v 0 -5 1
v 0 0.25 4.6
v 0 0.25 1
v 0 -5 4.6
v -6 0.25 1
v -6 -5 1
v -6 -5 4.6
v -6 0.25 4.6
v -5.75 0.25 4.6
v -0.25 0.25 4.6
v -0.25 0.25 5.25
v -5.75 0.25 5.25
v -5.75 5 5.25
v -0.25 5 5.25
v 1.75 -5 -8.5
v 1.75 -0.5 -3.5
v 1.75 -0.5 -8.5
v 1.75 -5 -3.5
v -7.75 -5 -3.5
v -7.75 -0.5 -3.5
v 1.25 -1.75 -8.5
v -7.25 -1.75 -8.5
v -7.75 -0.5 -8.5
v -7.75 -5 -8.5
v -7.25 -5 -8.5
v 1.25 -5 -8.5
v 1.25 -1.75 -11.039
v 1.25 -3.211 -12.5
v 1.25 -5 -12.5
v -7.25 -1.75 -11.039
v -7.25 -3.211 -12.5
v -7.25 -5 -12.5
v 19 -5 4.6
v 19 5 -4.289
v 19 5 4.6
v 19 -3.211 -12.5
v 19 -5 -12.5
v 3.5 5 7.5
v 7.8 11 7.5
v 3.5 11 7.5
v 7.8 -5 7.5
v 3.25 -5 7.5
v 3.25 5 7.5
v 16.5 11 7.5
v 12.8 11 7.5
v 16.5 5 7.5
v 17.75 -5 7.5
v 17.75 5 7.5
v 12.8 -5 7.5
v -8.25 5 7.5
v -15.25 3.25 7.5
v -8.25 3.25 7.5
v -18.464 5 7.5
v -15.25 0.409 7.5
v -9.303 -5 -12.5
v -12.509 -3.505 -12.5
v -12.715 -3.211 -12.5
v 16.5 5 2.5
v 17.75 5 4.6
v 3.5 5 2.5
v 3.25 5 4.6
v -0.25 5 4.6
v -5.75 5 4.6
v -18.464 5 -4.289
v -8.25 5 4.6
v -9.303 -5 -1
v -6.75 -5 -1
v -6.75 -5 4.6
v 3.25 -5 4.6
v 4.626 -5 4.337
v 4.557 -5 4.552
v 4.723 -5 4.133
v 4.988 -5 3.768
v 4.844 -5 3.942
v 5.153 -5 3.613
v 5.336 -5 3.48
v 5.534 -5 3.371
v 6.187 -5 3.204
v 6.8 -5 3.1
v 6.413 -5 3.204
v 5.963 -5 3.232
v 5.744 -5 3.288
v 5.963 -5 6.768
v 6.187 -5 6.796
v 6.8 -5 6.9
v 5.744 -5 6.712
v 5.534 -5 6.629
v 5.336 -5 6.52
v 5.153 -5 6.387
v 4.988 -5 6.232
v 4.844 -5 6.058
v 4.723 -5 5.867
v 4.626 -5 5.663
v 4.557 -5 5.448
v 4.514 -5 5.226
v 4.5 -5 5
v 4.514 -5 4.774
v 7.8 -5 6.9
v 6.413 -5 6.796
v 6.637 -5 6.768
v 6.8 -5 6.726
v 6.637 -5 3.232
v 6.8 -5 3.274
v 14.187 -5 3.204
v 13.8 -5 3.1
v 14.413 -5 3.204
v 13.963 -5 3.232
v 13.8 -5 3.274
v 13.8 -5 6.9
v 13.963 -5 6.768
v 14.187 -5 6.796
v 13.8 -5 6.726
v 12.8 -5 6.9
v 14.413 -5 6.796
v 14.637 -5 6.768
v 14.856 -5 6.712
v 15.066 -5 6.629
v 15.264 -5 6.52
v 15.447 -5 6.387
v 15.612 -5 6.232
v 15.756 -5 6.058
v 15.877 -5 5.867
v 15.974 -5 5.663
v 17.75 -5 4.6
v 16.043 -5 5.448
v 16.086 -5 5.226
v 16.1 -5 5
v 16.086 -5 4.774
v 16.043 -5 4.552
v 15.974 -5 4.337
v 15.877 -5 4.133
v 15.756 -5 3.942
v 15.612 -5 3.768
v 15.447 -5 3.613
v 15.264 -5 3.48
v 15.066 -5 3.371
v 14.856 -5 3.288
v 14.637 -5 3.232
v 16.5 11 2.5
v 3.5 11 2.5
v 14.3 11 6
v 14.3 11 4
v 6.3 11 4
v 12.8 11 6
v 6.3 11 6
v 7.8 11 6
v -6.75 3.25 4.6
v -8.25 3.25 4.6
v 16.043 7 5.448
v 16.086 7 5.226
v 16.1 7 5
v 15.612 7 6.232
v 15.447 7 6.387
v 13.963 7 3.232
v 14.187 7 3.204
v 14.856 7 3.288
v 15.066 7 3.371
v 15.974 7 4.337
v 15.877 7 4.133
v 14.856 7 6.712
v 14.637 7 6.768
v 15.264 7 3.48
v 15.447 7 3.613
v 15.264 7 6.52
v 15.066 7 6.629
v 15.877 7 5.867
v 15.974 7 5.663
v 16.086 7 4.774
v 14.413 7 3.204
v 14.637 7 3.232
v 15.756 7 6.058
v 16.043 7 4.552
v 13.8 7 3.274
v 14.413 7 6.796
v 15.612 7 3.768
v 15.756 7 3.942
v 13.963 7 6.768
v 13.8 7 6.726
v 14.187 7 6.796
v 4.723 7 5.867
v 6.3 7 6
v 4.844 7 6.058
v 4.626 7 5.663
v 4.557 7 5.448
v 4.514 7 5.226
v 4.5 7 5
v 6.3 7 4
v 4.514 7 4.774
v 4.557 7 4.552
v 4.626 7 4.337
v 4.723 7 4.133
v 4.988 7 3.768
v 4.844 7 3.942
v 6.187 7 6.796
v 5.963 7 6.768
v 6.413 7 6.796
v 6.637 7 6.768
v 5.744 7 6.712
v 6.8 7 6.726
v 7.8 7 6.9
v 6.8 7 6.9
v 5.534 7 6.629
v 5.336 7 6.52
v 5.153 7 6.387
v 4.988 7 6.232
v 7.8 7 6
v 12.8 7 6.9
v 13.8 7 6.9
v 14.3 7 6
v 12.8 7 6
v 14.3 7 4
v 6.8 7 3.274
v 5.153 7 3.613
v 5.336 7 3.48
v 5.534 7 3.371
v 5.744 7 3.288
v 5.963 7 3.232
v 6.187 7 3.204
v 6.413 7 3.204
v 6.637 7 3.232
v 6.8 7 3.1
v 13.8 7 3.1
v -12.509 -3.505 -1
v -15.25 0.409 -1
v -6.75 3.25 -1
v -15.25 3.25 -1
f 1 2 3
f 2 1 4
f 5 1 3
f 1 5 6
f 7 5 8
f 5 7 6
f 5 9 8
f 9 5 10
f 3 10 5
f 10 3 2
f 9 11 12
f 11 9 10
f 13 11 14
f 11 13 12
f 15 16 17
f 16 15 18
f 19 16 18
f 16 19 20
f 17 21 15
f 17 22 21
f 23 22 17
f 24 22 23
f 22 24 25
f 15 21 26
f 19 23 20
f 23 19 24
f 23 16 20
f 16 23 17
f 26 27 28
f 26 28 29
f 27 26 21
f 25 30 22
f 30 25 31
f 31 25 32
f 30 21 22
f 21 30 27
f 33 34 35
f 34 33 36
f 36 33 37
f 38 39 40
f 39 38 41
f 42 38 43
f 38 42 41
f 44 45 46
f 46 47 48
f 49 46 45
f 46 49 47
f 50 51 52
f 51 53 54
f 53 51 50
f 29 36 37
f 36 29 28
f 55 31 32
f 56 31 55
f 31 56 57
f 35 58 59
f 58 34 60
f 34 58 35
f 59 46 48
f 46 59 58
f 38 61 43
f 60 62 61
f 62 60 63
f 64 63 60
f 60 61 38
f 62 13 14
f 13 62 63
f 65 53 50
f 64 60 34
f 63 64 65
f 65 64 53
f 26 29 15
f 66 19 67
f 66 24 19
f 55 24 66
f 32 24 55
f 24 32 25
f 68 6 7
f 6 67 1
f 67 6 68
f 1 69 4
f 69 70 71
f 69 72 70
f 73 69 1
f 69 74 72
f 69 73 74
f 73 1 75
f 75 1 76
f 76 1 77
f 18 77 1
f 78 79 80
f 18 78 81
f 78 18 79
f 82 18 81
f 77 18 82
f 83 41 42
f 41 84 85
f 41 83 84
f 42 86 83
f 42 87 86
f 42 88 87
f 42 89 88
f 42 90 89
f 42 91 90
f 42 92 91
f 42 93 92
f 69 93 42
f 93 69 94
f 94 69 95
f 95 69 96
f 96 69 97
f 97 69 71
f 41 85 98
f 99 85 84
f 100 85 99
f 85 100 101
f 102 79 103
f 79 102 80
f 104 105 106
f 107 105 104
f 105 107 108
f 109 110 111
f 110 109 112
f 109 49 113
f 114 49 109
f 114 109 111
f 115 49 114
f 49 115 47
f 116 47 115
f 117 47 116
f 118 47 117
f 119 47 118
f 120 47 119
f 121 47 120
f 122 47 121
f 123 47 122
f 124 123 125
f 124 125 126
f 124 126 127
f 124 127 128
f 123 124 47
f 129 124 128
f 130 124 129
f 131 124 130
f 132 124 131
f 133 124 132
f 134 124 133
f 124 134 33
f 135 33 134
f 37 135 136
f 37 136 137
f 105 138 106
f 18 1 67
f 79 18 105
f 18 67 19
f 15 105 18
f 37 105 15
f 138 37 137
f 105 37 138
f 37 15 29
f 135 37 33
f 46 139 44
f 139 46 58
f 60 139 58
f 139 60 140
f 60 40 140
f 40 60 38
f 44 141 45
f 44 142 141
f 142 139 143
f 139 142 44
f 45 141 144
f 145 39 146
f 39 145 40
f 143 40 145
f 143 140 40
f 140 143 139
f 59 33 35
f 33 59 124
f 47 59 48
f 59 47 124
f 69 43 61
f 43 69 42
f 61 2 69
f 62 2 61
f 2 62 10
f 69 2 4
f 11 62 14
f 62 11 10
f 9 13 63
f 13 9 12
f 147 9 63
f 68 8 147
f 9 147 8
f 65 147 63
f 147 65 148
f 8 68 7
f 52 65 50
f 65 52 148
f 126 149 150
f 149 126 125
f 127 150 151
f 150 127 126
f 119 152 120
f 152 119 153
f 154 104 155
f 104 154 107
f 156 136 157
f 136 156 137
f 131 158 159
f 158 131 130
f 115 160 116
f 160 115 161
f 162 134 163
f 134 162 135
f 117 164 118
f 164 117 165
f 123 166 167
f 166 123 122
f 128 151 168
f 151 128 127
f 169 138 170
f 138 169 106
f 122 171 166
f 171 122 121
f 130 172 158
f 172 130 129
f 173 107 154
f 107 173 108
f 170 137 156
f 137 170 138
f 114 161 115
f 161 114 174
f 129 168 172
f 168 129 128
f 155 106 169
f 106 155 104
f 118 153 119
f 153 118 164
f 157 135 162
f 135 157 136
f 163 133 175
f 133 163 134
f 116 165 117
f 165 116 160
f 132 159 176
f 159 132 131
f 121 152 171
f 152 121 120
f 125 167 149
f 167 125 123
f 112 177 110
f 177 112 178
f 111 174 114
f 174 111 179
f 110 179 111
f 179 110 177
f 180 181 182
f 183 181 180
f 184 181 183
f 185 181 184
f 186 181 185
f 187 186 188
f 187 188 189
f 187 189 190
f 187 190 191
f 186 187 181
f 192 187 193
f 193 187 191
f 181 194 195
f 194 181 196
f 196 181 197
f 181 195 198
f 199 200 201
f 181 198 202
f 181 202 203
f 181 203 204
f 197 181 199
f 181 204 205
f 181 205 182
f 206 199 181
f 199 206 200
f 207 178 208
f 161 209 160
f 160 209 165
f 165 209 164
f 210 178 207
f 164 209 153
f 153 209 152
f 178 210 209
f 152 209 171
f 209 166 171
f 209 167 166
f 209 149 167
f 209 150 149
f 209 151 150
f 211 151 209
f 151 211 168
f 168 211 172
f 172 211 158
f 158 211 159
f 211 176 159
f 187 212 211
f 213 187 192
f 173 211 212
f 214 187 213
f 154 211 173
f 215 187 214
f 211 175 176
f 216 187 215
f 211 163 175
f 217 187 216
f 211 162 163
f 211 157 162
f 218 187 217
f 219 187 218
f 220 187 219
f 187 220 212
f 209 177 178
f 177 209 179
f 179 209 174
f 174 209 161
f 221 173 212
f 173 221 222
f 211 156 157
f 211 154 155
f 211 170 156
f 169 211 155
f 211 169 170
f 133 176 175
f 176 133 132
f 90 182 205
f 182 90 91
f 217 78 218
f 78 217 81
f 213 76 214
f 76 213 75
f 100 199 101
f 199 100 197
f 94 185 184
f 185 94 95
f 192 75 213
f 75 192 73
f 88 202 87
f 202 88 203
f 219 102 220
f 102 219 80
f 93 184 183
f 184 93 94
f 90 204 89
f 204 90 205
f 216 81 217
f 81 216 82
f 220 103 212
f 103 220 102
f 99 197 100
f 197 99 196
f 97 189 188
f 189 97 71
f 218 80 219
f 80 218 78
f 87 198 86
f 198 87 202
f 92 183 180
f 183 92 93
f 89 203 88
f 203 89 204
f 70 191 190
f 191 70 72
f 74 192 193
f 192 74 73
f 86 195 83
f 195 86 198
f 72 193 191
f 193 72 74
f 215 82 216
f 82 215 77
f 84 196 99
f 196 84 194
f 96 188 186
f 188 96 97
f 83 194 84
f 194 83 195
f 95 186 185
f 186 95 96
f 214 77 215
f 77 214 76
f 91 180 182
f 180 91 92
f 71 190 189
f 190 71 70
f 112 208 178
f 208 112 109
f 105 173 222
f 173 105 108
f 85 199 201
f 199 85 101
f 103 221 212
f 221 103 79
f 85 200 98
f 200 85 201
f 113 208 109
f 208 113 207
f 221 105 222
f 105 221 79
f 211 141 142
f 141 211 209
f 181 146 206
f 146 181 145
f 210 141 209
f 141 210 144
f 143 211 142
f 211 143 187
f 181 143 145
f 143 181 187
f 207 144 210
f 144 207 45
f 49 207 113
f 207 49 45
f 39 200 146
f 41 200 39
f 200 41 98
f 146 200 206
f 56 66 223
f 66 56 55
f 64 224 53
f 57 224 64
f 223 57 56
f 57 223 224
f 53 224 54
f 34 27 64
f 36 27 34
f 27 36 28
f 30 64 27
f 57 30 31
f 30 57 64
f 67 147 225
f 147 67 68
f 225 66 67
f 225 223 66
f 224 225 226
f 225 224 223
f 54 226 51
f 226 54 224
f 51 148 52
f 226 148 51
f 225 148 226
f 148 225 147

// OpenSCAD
$fn = 50;

difference() {
    
  union() {  
  translate([0,0,-2.5])
    cube([38, 10, 20], center=true);

  translate([10, 3, 5]) 
    cube([13, 16, 5], center=true);
  }

translate([-74, -30, 0])
  rotate([0,0,65])
    cube([100, 100, 100], center=true);

translate([-69, -10, 0])
  rotate([0,0,35])
    cube([100, 100, 100], center=true);
  
translate([0, 50, -30])
  rotate([45,0,0])
    cube([100, 100, 100], center=true);

translate([-11, -1, 4])
  cube([8.5, 8.5, 10], center= true);

translate([17, 0, 6.1])
  topcuts();

translate([-3,-2.5,4])
  button();

translate([10.3,0, 5])
    usbc();

translate([-3, -3, -6]) 
  switcher();
    
}



//translate([17, 0, 6.5])
//  topcuts();

//translate([9.5,0, 40])
//    button();

module topcuts() {

  translate([2, 0, 0])
    cube([2.5, 30, 3], center = true);
    
  translate([-15.5, 0, 0])
    cube([3.5, 30, 3, ], center = true);

  translate([-24, 0, 0])
    cube([2.5, 30, 3, ], center = true);
}


module button() {
    
    cube([6.0, 5.5, 6], center=true);
    
    translate([0,3,4])
    cube([5.8, 15.5, 5.5], center=true);
    
}

module usbc() {
    
    rotate([90,0,0])
    union() {
    translate([4.0, 0, 0])
      cylinder(r=1.8, h=14, center=true);

    translate([-4.0, 0, 0])
      cylinder(r=1.8, h=14, center=true);

    cube([7, 3.8, 14], center=true);
    }   
    
    translate([0,10,0])
      cube([8,10,2], center=true);
     
    translate([0,0,3])
      cube([5,40,5], center=true);
    
}


module switcher() {
    
    cube([9.5, 5, 5], center=true);
    
    translate([0, -0.5, -4.4]) 
      cube([8.5, 3.5, 4.5], center=true);
    
}



    
